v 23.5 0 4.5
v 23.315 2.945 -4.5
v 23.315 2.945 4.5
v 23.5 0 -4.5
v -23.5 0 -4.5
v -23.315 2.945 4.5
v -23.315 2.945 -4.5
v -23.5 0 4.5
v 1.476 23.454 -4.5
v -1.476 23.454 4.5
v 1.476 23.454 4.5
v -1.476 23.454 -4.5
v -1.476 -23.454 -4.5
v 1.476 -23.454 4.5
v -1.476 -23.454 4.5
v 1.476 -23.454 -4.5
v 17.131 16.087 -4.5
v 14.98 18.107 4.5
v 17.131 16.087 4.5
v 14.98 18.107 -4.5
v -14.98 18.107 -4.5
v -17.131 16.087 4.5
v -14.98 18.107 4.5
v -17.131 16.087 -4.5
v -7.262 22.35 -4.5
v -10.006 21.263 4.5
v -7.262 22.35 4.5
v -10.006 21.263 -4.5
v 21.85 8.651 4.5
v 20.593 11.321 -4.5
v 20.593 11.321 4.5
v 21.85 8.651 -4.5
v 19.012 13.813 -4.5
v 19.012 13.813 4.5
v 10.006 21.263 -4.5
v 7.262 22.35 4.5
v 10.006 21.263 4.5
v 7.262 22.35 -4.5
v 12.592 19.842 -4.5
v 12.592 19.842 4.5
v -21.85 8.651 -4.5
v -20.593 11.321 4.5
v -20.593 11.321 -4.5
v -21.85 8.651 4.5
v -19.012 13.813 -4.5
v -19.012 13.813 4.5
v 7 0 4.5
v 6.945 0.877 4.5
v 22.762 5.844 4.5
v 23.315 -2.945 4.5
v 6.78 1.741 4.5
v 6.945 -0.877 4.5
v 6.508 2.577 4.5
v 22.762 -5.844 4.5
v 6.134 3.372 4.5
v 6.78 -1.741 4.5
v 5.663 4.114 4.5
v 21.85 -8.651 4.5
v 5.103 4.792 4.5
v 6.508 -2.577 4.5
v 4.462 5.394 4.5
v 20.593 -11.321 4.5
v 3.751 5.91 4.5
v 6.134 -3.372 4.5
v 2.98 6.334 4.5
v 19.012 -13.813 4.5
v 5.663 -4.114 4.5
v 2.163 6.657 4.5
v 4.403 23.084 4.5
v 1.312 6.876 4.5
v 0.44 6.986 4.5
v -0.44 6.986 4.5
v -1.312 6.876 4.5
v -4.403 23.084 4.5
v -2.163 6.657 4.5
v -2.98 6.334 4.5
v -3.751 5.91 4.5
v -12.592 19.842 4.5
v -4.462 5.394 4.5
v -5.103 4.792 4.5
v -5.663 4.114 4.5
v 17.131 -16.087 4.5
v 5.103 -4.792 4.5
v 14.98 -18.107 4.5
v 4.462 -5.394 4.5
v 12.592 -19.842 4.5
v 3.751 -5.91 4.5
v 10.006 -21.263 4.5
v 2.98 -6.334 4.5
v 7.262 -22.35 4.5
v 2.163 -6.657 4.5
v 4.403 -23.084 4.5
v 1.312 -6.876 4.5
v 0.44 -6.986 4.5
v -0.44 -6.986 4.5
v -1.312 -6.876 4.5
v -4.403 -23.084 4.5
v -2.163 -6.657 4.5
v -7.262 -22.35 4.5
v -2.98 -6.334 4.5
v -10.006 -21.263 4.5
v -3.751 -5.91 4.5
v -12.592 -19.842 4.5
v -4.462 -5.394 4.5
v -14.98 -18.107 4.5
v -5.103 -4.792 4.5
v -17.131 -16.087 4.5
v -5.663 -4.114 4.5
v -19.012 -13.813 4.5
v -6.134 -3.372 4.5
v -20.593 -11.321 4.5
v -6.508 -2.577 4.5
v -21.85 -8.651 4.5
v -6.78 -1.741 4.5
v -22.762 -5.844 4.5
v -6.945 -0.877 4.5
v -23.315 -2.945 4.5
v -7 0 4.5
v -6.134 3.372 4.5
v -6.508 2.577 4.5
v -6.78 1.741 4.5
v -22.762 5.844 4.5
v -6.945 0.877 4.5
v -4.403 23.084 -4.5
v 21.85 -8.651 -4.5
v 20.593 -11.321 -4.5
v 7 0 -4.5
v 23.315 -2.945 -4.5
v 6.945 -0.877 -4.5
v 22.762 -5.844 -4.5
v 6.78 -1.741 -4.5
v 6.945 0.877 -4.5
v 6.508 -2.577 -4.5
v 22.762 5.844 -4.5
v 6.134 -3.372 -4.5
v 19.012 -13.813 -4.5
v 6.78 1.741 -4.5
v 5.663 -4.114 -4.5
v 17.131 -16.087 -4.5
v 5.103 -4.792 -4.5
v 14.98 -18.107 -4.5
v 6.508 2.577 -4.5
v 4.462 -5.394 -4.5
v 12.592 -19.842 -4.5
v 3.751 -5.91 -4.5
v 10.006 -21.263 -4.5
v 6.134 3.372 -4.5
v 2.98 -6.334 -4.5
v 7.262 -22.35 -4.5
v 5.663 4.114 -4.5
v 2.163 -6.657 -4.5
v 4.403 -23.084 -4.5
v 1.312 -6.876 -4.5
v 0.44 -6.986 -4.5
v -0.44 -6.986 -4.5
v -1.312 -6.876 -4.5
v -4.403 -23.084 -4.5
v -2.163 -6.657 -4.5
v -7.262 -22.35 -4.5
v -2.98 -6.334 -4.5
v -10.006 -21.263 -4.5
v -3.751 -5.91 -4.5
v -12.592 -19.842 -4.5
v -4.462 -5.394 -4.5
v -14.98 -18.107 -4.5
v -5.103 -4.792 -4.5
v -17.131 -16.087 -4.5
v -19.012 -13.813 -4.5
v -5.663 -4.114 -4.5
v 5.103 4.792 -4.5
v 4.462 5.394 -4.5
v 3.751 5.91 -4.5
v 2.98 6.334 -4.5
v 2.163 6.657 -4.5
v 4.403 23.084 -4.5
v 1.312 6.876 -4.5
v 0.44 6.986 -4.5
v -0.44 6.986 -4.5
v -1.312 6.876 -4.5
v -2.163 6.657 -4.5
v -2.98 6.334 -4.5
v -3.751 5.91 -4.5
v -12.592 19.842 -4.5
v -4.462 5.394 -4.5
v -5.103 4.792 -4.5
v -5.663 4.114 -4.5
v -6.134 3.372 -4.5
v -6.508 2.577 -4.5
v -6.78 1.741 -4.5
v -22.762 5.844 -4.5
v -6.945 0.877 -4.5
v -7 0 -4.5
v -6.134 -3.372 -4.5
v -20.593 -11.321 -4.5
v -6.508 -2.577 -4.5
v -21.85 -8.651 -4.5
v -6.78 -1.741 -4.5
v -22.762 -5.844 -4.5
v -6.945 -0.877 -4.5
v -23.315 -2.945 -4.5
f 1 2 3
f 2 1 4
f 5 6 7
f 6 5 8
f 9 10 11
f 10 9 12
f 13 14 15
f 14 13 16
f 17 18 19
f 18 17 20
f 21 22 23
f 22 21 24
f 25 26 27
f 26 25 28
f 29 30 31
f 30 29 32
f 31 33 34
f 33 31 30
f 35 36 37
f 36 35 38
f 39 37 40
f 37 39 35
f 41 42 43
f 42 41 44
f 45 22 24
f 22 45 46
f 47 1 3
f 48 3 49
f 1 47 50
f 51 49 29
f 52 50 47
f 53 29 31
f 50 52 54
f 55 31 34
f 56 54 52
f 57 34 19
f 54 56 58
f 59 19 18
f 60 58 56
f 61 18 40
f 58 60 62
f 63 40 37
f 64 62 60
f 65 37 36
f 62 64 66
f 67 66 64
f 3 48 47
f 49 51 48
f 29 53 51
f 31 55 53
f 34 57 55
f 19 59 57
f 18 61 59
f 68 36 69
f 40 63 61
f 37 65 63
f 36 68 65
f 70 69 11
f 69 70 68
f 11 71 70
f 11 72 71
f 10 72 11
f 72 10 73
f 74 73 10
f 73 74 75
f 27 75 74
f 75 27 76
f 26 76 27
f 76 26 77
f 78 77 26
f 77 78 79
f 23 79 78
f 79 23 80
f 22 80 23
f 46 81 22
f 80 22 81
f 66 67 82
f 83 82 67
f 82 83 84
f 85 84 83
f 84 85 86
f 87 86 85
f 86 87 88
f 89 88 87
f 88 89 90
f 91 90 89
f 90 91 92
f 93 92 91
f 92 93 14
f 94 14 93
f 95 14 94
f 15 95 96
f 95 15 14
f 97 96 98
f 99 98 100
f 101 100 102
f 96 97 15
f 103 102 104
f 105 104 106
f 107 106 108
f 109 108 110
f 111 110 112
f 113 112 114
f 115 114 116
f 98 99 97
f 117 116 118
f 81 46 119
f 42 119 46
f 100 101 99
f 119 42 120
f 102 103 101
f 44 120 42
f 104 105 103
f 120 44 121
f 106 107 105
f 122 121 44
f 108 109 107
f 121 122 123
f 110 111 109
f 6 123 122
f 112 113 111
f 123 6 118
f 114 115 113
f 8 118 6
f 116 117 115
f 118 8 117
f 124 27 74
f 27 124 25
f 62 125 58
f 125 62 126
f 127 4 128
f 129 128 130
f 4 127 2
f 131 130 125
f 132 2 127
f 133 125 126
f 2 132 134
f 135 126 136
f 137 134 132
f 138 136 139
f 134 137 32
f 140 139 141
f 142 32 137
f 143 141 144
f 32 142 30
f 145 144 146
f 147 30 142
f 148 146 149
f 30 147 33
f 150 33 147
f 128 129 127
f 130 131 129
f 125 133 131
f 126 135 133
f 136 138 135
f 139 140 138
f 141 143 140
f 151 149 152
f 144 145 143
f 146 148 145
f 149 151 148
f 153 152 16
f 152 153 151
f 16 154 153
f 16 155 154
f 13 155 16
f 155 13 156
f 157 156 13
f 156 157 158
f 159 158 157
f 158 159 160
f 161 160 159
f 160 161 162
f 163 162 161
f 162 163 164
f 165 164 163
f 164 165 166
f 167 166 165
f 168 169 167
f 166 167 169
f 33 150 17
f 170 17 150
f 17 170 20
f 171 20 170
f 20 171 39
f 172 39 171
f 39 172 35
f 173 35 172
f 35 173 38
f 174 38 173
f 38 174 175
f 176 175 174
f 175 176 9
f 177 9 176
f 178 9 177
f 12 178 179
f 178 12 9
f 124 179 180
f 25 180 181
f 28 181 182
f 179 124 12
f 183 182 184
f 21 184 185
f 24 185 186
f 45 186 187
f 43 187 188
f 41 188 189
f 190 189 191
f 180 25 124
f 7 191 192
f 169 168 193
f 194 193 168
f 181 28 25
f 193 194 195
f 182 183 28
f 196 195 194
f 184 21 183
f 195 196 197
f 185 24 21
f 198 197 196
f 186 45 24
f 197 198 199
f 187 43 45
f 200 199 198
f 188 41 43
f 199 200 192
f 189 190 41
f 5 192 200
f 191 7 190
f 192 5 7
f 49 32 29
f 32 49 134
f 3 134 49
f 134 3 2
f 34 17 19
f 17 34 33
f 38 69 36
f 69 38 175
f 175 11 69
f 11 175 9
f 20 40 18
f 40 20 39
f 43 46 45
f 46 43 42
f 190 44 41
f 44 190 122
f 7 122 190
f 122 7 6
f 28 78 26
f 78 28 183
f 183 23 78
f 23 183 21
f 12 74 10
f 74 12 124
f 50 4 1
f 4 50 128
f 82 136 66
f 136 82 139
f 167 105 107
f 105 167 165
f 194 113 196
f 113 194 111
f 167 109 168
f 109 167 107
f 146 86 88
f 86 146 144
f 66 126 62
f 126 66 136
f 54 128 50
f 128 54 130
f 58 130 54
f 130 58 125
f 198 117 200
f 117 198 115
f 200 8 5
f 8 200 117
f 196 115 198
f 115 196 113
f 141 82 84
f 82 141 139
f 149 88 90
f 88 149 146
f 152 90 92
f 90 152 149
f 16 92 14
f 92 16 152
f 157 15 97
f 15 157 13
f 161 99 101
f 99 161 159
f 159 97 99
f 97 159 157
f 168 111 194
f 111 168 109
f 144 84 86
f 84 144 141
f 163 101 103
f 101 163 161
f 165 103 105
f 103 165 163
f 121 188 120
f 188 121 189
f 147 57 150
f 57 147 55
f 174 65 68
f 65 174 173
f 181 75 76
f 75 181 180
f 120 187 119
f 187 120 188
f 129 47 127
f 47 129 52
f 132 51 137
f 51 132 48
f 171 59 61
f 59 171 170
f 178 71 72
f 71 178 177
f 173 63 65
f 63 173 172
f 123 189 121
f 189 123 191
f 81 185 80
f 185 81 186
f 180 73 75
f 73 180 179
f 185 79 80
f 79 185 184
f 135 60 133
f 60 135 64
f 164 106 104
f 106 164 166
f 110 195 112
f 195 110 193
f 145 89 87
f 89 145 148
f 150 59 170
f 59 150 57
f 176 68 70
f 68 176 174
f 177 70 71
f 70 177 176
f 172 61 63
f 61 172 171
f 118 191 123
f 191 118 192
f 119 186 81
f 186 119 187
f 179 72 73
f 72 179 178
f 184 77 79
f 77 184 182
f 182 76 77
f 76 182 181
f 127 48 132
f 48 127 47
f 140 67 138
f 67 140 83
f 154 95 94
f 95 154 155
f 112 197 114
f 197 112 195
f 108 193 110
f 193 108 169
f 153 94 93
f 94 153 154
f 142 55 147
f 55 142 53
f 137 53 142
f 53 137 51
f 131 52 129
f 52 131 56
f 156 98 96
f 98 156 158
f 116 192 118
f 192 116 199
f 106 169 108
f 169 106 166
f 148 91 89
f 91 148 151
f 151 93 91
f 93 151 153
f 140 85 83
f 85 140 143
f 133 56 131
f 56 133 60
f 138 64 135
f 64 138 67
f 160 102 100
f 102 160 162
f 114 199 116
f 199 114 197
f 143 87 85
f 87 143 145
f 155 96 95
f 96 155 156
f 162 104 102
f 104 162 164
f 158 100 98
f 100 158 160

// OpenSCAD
$fn = 50;


difference() {
	union() {
		translate(v = [0, 0, -4.5000000000]) {
			cylinder(h = 9, r = 23.5000000000);
		}
	}
	union() {
		translate(v = [0, 0, -100.0000000000]) {
			cylinder(h = 200, r = 7);
		}
	}
}
